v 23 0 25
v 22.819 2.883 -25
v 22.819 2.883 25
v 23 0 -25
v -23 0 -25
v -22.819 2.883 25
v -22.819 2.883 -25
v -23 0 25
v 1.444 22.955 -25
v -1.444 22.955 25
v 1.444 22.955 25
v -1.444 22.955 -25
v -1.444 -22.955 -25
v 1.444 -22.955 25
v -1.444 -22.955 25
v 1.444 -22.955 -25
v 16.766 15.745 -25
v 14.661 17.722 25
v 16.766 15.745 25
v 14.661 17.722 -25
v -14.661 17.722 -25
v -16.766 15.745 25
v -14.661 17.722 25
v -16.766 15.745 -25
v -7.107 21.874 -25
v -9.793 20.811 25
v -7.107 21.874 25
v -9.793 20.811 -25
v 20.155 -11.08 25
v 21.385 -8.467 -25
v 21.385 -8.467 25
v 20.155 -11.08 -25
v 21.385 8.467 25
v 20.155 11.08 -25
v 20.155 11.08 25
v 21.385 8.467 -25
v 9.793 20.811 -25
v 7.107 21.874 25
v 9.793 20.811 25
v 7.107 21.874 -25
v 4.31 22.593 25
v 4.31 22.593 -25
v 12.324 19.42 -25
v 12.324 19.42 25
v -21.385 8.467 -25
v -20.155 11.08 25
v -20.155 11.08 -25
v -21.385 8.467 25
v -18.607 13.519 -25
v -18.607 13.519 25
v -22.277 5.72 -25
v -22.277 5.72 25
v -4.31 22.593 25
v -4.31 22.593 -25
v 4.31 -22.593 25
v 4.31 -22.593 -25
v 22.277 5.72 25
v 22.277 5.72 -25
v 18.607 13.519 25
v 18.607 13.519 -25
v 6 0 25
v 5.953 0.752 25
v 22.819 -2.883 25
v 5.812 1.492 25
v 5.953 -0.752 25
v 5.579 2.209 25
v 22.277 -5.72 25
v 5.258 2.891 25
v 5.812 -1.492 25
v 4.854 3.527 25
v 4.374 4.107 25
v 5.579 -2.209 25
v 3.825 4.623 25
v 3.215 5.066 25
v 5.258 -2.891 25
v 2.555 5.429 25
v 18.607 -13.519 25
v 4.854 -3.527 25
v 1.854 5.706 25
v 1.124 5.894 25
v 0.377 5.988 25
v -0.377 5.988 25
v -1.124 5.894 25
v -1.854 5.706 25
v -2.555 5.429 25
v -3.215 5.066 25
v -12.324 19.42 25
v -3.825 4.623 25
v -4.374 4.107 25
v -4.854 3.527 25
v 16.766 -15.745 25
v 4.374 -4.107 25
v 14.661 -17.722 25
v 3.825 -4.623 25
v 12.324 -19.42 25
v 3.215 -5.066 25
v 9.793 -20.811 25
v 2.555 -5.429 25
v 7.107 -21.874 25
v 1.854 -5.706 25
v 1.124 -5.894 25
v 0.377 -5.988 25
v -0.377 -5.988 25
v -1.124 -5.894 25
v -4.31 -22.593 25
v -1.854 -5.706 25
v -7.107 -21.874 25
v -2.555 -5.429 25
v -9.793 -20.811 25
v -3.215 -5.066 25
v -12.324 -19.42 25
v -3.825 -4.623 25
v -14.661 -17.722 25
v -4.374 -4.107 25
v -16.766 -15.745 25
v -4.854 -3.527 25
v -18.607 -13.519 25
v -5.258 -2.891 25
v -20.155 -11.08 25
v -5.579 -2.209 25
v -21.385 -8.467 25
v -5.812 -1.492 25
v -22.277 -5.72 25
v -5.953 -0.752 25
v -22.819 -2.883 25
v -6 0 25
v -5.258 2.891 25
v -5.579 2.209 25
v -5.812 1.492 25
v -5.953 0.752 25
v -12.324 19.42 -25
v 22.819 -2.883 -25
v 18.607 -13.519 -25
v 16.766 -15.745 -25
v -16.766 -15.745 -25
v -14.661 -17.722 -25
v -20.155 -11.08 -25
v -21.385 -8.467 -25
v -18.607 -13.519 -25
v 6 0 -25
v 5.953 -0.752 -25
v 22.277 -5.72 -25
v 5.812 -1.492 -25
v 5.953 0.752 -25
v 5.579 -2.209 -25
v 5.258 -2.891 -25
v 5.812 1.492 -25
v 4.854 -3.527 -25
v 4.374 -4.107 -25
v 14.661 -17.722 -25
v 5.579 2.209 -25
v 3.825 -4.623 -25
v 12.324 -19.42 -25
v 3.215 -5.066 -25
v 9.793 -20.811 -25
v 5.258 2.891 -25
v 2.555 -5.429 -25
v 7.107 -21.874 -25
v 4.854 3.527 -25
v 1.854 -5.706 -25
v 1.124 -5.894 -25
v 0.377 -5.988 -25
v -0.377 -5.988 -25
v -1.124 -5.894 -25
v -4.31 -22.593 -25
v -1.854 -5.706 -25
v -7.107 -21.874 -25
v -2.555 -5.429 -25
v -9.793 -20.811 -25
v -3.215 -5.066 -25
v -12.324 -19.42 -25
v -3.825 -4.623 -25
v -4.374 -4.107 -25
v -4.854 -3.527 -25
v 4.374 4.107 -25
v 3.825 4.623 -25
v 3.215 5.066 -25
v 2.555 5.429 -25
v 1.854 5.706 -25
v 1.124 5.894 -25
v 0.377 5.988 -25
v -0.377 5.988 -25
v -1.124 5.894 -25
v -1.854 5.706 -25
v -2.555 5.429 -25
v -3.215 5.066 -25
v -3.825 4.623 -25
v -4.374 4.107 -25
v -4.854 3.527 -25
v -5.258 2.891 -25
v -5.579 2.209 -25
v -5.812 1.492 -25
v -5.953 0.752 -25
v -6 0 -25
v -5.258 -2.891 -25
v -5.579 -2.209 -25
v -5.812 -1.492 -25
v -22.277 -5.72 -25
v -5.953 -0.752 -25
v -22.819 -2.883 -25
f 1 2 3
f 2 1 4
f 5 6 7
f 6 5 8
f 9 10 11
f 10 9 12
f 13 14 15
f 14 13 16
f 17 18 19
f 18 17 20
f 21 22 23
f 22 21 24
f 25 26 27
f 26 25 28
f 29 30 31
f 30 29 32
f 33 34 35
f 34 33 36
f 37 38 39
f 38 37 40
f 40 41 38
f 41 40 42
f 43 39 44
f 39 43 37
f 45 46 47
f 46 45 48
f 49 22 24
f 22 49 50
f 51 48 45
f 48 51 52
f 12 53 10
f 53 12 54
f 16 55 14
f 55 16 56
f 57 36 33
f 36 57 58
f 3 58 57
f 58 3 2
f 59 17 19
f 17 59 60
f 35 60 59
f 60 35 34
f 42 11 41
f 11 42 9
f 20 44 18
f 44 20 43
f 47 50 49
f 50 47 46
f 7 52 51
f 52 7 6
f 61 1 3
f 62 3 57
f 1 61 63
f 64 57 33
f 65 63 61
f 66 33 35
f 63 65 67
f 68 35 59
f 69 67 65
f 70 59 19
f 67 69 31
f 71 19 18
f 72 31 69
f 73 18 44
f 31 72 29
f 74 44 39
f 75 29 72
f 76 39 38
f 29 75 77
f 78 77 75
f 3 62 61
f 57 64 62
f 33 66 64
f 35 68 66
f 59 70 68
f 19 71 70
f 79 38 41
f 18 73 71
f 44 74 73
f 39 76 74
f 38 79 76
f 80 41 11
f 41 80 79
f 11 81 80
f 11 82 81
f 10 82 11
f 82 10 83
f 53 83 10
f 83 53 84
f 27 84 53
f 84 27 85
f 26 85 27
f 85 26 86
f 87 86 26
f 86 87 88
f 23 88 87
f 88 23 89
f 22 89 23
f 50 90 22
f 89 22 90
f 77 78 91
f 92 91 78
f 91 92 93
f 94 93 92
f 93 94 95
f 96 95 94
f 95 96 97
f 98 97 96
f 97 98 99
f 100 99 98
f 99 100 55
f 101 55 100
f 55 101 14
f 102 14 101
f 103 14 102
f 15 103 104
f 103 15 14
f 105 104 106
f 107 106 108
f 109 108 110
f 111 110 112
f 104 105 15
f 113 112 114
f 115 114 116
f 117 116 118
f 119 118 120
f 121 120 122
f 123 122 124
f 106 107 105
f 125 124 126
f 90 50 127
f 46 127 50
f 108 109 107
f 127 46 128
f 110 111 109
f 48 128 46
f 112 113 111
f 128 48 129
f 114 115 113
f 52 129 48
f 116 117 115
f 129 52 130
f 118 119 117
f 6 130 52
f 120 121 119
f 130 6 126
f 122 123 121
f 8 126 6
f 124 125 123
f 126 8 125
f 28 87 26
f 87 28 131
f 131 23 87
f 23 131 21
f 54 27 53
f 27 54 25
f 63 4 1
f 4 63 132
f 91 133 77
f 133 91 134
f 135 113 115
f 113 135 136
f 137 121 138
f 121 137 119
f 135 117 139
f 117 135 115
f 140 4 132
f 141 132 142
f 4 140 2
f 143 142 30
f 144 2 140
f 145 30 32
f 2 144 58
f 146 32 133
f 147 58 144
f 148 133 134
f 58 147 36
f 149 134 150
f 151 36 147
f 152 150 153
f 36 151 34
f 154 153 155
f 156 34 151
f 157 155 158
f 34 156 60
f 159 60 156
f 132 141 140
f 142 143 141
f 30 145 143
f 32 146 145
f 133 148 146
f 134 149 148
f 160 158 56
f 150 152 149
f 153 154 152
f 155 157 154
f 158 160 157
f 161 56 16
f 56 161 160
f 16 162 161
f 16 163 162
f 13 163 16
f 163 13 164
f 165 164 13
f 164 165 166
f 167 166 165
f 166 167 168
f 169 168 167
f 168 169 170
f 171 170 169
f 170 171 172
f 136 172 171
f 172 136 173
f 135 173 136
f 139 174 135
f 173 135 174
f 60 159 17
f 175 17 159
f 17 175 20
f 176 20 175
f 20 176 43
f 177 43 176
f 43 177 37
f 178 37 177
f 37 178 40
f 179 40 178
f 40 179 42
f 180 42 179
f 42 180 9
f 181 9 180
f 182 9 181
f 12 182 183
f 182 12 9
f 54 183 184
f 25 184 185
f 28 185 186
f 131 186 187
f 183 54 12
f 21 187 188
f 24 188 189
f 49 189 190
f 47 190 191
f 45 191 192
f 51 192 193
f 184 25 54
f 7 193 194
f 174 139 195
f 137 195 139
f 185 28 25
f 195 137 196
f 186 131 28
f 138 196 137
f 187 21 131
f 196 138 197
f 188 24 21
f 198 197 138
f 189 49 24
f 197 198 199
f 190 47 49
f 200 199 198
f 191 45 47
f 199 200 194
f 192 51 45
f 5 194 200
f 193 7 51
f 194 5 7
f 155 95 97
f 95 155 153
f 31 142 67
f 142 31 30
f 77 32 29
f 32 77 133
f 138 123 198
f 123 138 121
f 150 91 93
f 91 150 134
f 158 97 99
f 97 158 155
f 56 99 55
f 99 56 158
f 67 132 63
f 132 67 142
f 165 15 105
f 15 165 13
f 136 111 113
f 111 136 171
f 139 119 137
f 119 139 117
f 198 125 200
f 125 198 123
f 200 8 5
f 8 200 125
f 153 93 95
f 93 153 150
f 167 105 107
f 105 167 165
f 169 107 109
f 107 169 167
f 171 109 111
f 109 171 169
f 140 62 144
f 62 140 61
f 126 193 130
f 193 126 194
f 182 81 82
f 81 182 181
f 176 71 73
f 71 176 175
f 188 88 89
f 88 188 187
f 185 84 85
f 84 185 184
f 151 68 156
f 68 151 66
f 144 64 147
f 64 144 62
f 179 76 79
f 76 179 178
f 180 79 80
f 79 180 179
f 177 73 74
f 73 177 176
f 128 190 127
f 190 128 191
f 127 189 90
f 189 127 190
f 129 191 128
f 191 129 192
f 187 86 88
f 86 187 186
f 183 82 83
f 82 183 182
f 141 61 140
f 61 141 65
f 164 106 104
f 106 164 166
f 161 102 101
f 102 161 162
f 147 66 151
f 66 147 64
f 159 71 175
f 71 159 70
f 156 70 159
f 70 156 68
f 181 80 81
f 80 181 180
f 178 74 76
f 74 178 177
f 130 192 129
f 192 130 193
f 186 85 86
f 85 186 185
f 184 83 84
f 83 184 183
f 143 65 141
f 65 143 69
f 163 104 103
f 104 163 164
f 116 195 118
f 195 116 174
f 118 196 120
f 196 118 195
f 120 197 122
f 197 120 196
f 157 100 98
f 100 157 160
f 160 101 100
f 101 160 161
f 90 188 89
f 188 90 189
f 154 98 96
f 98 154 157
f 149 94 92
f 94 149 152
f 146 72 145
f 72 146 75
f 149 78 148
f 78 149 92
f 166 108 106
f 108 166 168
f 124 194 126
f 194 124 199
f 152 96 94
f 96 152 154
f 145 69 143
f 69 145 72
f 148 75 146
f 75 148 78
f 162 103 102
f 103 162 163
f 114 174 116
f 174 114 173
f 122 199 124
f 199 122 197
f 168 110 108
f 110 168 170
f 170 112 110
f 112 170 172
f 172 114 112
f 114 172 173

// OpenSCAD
$fn = 50;


difference() {
	union() {
		translate(v = [0, 0, -25.0000000000]) {
			cylinder(h = 50, r = 23.0000000000);
		}
	}
	union() {
		translate(v = [0, 0, -100.0000000000]) {
			cylinder(h = 200, r = 6);
		}
	}
}
